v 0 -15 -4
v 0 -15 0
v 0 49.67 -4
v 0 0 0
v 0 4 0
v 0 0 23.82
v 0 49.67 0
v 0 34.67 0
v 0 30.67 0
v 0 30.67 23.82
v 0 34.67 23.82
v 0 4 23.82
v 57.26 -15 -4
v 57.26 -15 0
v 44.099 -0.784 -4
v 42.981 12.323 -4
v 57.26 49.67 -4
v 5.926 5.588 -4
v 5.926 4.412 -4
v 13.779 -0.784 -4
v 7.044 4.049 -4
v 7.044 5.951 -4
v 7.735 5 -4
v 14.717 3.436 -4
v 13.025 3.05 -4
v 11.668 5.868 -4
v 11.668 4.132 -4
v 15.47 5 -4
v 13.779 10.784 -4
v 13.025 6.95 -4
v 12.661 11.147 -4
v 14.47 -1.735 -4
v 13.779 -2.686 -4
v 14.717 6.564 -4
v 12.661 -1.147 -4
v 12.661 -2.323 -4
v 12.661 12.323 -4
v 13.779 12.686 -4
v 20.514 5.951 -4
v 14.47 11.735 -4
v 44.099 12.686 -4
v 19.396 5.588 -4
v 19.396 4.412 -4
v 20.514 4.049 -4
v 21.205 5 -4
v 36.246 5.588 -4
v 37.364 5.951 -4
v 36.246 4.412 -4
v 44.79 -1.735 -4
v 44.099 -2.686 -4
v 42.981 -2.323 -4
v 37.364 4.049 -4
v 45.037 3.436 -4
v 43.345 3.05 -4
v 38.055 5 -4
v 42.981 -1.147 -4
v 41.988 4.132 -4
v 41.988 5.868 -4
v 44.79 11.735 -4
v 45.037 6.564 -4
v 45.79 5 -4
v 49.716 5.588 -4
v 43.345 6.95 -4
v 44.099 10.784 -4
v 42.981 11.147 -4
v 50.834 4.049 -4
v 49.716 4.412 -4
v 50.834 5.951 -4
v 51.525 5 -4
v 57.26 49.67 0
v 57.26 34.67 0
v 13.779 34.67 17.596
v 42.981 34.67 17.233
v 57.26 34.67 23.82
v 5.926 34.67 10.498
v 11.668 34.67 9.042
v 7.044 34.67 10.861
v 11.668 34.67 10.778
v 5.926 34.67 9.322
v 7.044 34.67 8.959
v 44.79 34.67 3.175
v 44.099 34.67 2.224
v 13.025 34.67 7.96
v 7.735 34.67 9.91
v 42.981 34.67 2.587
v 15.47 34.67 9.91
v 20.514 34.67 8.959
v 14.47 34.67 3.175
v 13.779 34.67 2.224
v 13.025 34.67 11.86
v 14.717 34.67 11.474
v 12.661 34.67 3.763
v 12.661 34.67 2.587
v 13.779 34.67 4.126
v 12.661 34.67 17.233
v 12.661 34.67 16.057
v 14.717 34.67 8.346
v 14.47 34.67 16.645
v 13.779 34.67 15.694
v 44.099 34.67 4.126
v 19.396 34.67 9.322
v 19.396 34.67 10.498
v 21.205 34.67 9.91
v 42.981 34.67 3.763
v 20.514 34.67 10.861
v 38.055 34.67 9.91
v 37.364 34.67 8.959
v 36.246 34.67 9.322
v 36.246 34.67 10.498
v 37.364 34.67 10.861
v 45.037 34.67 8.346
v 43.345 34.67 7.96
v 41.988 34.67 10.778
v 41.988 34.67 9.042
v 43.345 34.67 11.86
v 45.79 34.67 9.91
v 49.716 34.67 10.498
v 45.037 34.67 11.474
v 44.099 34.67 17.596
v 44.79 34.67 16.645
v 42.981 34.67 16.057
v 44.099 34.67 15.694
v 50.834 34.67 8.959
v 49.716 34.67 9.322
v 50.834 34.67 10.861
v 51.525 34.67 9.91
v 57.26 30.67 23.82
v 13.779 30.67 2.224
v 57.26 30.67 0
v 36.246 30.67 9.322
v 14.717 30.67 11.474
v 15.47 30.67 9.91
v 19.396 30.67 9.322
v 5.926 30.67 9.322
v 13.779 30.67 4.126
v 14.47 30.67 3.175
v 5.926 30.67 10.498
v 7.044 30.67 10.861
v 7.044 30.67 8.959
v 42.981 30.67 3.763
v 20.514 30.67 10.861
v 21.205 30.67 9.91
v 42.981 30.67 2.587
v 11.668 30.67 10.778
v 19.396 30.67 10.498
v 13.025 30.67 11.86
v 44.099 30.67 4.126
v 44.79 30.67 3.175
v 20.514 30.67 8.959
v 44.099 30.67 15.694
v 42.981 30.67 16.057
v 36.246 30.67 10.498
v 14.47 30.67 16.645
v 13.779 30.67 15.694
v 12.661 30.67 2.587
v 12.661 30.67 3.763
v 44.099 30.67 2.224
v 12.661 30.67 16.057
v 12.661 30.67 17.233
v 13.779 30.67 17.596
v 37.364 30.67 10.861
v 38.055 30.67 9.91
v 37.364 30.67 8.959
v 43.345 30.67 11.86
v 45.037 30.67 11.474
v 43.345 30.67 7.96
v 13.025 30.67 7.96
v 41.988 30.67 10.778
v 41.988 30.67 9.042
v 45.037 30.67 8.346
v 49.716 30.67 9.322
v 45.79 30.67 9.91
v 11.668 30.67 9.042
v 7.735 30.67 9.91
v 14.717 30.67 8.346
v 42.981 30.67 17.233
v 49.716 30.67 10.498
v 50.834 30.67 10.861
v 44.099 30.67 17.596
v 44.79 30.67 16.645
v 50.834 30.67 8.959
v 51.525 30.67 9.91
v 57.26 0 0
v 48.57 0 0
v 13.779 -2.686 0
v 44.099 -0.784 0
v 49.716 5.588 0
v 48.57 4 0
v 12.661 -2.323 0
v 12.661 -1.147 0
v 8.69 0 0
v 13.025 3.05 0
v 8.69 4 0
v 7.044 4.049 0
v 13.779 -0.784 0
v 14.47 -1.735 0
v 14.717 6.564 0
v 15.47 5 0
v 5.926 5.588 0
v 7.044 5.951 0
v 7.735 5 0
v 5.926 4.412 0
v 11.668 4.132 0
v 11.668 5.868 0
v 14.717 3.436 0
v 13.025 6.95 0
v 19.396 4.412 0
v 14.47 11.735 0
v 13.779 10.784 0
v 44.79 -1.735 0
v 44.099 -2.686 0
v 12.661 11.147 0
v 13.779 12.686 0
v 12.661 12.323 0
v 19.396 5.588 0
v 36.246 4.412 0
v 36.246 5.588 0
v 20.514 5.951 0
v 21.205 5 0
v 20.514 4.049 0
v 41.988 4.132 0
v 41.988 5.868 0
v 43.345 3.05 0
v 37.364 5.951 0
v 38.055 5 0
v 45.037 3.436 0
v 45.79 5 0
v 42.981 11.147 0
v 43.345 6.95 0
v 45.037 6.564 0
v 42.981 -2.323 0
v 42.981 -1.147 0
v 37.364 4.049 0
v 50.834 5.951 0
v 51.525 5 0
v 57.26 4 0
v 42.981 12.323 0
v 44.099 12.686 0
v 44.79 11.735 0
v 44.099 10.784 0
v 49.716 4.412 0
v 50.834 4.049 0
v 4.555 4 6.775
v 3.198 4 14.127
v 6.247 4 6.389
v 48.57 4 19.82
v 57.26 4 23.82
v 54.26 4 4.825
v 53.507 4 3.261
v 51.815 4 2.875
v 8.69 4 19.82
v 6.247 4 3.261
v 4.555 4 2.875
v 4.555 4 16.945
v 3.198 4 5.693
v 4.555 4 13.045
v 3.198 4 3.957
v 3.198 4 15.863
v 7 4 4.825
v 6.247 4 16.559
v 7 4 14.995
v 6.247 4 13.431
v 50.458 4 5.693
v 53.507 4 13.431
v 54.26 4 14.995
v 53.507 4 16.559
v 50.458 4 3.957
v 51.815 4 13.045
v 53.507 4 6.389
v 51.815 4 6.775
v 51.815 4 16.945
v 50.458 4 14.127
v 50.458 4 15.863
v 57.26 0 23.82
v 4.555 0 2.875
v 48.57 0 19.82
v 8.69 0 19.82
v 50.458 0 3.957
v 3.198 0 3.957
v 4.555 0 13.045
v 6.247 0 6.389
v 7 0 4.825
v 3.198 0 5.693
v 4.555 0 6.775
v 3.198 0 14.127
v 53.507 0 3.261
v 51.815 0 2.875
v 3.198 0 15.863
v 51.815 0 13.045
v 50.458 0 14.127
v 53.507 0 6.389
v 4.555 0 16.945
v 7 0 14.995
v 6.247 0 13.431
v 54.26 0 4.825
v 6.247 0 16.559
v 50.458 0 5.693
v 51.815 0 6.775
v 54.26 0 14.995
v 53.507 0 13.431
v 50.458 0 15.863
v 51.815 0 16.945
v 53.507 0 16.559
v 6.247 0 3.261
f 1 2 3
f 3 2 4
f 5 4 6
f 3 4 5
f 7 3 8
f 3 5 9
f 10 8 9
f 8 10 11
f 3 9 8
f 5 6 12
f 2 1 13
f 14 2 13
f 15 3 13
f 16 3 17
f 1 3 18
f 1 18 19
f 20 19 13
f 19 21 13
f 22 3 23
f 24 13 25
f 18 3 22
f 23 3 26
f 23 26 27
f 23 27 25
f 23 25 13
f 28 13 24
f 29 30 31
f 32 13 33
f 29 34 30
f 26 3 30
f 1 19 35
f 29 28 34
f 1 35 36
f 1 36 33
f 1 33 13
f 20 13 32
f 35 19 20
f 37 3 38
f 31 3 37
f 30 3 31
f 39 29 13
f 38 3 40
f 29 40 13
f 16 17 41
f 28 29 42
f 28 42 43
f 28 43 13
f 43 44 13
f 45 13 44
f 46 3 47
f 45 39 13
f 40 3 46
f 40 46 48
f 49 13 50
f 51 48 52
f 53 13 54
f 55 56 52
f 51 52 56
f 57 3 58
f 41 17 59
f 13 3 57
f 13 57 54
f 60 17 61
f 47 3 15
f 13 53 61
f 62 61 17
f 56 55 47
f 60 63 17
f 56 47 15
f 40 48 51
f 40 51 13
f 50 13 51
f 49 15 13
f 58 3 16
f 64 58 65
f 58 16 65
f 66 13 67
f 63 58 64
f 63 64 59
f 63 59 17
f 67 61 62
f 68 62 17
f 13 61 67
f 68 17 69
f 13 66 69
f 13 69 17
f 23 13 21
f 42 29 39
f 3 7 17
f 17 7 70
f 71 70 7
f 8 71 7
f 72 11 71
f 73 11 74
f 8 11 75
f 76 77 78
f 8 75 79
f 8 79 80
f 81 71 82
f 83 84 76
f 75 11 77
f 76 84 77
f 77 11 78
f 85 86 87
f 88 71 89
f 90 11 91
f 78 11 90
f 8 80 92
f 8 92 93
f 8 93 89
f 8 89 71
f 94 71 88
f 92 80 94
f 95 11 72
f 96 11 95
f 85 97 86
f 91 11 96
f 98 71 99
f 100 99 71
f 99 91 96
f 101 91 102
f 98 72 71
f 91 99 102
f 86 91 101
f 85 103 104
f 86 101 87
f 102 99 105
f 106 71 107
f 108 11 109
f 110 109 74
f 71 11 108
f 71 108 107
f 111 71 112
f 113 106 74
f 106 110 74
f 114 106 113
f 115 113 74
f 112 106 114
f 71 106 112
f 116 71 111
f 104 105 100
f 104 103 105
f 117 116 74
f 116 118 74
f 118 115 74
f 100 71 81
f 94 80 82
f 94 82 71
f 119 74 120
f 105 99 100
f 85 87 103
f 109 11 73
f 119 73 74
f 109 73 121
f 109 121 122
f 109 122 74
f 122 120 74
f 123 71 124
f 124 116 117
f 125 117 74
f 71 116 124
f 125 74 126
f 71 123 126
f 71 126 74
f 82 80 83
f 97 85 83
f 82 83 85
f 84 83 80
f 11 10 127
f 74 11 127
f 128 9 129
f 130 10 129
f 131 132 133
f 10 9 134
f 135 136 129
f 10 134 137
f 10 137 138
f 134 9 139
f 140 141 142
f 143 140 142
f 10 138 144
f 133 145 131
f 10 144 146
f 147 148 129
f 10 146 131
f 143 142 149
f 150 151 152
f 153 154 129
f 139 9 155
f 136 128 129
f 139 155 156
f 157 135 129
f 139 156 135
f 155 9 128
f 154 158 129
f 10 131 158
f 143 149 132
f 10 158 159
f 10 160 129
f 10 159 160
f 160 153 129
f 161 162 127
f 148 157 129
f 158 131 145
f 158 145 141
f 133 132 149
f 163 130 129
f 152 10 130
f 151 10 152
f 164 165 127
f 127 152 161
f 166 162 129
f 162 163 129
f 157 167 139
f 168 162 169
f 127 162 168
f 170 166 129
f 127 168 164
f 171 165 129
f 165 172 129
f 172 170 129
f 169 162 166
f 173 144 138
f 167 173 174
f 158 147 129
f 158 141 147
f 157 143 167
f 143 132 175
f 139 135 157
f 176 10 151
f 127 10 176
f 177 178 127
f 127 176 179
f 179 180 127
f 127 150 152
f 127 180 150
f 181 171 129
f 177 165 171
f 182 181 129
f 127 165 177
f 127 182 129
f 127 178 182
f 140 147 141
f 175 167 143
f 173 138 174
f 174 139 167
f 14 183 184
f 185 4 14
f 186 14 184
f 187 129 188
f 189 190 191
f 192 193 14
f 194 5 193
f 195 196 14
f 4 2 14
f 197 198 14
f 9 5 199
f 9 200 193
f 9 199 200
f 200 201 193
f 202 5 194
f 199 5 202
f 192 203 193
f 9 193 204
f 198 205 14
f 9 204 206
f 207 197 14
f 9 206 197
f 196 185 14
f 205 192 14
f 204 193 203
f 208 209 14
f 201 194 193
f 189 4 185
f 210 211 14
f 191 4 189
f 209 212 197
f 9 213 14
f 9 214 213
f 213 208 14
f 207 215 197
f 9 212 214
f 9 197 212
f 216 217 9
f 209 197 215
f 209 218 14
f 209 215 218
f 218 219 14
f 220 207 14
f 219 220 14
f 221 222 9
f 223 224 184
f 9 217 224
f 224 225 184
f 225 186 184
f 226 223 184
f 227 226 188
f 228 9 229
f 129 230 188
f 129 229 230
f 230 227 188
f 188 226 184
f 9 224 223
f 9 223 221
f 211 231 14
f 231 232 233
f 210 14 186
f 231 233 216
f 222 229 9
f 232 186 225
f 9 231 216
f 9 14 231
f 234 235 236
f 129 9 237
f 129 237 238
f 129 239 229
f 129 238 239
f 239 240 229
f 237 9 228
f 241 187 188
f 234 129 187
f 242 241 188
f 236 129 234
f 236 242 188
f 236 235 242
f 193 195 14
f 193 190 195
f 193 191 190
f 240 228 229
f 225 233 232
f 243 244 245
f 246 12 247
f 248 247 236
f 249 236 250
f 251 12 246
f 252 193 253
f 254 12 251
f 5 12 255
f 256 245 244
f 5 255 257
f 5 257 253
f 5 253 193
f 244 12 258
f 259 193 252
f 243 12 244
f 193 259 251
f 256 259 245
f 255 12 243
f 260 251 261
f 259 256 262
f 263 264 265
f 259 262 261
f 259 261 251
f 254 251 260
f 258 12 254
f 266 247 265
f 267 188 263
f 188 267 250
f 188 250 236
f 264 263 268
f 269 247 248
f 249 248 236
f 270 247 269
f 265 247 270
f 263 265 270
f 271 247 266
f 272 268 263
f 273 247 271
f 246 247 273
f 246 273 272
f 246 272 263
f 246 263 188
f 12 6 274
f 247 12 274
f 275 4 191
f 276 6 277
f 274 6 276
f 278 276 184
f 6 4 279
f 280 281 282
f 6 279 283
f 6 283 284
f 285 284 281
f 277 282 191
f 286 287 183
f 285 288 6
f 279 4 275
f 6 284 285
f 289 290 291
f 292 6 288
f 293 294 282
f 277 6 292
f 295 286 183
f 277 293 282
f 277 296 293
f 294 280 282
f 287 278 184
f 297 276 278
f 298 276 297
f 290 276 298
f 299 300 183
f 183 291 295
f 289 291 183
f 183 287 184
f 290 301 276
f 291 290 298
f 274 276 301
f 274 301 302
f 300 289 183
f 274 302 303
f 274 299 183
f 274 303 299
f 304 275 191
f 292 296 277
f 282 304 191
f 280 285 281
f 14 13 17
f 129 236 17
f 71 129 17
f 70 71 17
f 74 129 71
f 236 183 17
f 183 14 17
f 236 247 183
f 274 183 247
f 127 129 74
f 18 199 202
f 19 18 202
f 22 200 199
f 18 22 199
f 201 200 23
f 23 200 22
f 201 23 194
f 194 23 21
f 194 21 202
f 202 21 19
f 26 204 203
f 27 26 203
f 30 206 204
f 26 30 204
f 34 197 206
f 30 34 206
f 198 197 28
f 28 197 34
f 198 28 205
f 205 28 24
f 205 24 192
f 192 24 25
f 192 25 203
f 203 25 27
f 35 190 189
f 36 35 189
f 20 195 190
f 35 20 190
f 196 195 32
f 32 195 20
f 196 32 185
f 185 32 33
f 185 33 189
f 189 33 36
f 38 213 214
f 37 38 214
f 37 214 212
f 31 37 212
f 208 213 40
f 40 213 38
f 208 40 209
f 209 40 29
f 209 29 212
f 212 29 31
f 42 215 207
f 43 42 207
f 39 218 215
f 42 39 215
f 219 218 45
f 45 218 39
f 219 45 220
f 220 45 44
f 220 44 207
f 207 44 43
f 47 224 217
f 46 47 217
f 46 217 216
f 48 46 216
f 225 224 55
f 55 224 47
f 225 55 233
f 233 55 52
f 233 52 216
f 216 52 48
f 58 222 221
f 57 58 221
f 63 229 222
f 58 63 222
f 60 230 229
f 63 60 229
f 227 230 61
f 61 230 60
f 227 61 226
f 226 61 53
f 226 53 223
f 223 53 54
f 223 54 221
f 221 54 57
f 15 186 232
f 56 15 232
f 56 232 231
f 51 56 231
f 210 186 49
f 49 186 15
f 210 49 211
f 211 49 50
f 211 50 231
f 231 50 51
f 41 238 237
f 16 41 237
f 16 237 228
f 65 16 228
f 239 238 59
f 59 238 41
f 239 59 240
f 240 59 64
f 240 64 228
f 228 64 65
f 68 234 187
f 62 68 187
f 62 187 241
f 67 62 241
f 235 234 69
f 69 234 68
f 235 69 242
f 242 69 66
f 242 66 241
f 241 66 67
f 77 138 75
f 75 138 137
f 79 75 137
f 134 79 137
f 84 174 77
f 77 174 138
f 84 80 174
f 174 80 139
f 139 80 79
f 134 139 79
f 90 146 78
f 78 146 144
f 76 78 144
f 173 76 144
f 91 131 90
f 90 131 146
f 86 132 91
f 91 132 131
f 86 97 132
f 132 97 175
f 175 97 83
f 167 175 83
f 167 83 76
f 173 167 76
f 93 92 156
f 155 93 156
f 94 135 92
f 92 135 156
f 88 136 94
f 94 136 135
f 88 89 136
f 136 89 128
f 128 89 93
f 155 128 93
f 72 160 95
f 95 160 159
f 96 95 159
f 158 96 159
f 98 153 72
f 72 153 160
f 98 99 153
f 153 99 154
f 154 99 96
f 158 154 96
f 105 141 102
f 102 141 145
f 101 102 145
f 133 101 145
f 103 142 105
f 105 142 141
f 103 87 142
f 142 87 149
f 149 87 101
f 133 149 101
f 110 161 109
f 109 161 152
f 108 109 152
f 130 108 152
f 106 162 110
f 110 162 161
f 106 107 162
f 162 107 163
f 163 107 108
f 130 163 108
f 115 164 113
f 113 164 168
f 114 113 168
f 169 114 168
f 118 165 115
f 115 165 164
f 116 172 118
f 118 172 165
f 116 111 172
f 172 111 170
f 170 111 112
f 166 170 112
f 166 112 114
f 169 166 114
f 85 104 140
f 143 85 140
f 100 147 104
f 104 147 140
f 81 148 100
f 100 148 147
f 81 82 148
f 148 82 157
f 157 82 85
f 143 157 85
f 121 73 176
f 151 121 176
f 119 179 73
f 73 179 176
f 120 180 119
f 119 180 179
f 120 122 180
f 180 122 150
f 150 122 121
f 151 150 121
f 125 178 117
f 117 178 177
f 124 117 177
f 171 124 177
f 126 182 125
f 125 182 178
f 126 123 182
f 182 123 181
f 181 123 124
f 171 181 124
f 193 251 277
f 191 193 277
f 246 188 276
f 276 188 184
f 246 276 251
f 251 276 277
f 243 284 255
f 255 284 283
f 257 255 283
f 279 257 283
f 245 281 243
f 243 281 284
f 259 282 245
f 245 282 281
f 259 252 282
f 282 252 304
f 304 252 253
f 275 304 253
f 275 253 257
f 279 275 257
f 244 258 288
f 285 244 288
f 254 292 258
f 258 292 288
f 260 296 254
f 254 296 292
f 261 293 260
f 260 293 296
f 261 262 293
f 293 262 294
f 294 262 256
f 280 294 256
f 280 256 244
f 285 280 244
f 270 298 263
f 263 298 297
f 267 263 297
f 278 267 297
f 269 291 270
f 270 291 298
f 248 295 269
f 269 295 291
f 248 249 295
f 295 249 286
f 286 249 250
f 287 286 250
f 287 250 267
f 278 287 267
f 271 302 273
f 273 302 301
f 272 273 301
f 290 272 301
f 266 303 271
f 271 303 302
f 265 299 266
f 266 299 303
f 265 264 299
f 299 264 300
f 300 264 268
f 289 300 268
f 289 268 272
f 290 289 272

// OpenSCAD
module servo_bracket()
{

A = 19.82;
B = 13.47;
C = 33.79;
D = 10.17;
E = 9.66;
F = 30.22;
G = 11.68;
H = 26.67;
J = 52.84;

thickness = 4;

module pinhole( x, y, z ){
	translate([x,y,z]){
		rotate(90,[1,0,0]){
			cylinder(h=thickness+2,r=1);
		}
	}
}

module pivothole( x, y, z ){
	translate([x,y,z]){
		rotate(90,[1,0,0]){
			cylinder(h=thickness+2,r=2);
		}
	}
}

module mountpoint( x, y, z ){
		//one pivot hole in the center
		pivothole( x, y, z );

		//four mount holes
		pinhole( x+(B/2), y, z );
		pinhole( x-(B/2), y, z );
		pinhole( x, y, z-(B/2) );
		pinhole( x, y, z+(B/2) );
}

	//zero ball
	//sphere(r=1);

	//front plate
	//sanity check ball
	//translate( [ 0, 0, A ] ){
	//	sphere(r=1);
	//}
	difference(){
		cube( size=[ B+C+10, thickness, A+thickness ] );
		translate( [ ((B+C+10)-(E+F))/2, -1, 0] ){
			cube( size=[ E+F, thickness+2, A ] );
		}

		translate( [ 0, thickness+1, 0] ){
			//four mounting holes
			pivothole( 5, 0, (A-D)/2 );
			pivothole( 5, 0, ((A-D)/2)+D );
			pivothole( B+C+5, 0, (A-D)/2 );
			pivothole( B+C+5, 0, ((A-D)/2)+D );
		}
	}

	//back plate
	//sanity check ball
	//translate( [ 0, H, 0] ){
	//	sphere(r=1);
	//}
	difference(){
		translate( [0, H+thickness, 0] ){
			cube( size=[ B+C+10, thickness, A+thickness ] );
		}

		//pivot holes behind servo
		mountpoint( B, H+(thickness*2)+1, A/2 );
		mountpoint( (B+C+10)-B, H+(thickness*2)+1, A/2 );
	}

	//base
	//sanity check ball
	//translate( [ B+C, 0, 0] ){
	//	sphere(r=1);
	//}
	difference(){
		translate( [ 0, -15, -thickness ] ){
			cube( size=[ B+C+10, H+(thickness*2)+30, thickness ] );
		}
		rotate( 90, [1,0,0]){
			mountpoint( B, 1, -thickness-1 );
			mountpoint( (B+C+10)-B, 1, -thickness-1 );
		}
	}
}

servo_bracket();
